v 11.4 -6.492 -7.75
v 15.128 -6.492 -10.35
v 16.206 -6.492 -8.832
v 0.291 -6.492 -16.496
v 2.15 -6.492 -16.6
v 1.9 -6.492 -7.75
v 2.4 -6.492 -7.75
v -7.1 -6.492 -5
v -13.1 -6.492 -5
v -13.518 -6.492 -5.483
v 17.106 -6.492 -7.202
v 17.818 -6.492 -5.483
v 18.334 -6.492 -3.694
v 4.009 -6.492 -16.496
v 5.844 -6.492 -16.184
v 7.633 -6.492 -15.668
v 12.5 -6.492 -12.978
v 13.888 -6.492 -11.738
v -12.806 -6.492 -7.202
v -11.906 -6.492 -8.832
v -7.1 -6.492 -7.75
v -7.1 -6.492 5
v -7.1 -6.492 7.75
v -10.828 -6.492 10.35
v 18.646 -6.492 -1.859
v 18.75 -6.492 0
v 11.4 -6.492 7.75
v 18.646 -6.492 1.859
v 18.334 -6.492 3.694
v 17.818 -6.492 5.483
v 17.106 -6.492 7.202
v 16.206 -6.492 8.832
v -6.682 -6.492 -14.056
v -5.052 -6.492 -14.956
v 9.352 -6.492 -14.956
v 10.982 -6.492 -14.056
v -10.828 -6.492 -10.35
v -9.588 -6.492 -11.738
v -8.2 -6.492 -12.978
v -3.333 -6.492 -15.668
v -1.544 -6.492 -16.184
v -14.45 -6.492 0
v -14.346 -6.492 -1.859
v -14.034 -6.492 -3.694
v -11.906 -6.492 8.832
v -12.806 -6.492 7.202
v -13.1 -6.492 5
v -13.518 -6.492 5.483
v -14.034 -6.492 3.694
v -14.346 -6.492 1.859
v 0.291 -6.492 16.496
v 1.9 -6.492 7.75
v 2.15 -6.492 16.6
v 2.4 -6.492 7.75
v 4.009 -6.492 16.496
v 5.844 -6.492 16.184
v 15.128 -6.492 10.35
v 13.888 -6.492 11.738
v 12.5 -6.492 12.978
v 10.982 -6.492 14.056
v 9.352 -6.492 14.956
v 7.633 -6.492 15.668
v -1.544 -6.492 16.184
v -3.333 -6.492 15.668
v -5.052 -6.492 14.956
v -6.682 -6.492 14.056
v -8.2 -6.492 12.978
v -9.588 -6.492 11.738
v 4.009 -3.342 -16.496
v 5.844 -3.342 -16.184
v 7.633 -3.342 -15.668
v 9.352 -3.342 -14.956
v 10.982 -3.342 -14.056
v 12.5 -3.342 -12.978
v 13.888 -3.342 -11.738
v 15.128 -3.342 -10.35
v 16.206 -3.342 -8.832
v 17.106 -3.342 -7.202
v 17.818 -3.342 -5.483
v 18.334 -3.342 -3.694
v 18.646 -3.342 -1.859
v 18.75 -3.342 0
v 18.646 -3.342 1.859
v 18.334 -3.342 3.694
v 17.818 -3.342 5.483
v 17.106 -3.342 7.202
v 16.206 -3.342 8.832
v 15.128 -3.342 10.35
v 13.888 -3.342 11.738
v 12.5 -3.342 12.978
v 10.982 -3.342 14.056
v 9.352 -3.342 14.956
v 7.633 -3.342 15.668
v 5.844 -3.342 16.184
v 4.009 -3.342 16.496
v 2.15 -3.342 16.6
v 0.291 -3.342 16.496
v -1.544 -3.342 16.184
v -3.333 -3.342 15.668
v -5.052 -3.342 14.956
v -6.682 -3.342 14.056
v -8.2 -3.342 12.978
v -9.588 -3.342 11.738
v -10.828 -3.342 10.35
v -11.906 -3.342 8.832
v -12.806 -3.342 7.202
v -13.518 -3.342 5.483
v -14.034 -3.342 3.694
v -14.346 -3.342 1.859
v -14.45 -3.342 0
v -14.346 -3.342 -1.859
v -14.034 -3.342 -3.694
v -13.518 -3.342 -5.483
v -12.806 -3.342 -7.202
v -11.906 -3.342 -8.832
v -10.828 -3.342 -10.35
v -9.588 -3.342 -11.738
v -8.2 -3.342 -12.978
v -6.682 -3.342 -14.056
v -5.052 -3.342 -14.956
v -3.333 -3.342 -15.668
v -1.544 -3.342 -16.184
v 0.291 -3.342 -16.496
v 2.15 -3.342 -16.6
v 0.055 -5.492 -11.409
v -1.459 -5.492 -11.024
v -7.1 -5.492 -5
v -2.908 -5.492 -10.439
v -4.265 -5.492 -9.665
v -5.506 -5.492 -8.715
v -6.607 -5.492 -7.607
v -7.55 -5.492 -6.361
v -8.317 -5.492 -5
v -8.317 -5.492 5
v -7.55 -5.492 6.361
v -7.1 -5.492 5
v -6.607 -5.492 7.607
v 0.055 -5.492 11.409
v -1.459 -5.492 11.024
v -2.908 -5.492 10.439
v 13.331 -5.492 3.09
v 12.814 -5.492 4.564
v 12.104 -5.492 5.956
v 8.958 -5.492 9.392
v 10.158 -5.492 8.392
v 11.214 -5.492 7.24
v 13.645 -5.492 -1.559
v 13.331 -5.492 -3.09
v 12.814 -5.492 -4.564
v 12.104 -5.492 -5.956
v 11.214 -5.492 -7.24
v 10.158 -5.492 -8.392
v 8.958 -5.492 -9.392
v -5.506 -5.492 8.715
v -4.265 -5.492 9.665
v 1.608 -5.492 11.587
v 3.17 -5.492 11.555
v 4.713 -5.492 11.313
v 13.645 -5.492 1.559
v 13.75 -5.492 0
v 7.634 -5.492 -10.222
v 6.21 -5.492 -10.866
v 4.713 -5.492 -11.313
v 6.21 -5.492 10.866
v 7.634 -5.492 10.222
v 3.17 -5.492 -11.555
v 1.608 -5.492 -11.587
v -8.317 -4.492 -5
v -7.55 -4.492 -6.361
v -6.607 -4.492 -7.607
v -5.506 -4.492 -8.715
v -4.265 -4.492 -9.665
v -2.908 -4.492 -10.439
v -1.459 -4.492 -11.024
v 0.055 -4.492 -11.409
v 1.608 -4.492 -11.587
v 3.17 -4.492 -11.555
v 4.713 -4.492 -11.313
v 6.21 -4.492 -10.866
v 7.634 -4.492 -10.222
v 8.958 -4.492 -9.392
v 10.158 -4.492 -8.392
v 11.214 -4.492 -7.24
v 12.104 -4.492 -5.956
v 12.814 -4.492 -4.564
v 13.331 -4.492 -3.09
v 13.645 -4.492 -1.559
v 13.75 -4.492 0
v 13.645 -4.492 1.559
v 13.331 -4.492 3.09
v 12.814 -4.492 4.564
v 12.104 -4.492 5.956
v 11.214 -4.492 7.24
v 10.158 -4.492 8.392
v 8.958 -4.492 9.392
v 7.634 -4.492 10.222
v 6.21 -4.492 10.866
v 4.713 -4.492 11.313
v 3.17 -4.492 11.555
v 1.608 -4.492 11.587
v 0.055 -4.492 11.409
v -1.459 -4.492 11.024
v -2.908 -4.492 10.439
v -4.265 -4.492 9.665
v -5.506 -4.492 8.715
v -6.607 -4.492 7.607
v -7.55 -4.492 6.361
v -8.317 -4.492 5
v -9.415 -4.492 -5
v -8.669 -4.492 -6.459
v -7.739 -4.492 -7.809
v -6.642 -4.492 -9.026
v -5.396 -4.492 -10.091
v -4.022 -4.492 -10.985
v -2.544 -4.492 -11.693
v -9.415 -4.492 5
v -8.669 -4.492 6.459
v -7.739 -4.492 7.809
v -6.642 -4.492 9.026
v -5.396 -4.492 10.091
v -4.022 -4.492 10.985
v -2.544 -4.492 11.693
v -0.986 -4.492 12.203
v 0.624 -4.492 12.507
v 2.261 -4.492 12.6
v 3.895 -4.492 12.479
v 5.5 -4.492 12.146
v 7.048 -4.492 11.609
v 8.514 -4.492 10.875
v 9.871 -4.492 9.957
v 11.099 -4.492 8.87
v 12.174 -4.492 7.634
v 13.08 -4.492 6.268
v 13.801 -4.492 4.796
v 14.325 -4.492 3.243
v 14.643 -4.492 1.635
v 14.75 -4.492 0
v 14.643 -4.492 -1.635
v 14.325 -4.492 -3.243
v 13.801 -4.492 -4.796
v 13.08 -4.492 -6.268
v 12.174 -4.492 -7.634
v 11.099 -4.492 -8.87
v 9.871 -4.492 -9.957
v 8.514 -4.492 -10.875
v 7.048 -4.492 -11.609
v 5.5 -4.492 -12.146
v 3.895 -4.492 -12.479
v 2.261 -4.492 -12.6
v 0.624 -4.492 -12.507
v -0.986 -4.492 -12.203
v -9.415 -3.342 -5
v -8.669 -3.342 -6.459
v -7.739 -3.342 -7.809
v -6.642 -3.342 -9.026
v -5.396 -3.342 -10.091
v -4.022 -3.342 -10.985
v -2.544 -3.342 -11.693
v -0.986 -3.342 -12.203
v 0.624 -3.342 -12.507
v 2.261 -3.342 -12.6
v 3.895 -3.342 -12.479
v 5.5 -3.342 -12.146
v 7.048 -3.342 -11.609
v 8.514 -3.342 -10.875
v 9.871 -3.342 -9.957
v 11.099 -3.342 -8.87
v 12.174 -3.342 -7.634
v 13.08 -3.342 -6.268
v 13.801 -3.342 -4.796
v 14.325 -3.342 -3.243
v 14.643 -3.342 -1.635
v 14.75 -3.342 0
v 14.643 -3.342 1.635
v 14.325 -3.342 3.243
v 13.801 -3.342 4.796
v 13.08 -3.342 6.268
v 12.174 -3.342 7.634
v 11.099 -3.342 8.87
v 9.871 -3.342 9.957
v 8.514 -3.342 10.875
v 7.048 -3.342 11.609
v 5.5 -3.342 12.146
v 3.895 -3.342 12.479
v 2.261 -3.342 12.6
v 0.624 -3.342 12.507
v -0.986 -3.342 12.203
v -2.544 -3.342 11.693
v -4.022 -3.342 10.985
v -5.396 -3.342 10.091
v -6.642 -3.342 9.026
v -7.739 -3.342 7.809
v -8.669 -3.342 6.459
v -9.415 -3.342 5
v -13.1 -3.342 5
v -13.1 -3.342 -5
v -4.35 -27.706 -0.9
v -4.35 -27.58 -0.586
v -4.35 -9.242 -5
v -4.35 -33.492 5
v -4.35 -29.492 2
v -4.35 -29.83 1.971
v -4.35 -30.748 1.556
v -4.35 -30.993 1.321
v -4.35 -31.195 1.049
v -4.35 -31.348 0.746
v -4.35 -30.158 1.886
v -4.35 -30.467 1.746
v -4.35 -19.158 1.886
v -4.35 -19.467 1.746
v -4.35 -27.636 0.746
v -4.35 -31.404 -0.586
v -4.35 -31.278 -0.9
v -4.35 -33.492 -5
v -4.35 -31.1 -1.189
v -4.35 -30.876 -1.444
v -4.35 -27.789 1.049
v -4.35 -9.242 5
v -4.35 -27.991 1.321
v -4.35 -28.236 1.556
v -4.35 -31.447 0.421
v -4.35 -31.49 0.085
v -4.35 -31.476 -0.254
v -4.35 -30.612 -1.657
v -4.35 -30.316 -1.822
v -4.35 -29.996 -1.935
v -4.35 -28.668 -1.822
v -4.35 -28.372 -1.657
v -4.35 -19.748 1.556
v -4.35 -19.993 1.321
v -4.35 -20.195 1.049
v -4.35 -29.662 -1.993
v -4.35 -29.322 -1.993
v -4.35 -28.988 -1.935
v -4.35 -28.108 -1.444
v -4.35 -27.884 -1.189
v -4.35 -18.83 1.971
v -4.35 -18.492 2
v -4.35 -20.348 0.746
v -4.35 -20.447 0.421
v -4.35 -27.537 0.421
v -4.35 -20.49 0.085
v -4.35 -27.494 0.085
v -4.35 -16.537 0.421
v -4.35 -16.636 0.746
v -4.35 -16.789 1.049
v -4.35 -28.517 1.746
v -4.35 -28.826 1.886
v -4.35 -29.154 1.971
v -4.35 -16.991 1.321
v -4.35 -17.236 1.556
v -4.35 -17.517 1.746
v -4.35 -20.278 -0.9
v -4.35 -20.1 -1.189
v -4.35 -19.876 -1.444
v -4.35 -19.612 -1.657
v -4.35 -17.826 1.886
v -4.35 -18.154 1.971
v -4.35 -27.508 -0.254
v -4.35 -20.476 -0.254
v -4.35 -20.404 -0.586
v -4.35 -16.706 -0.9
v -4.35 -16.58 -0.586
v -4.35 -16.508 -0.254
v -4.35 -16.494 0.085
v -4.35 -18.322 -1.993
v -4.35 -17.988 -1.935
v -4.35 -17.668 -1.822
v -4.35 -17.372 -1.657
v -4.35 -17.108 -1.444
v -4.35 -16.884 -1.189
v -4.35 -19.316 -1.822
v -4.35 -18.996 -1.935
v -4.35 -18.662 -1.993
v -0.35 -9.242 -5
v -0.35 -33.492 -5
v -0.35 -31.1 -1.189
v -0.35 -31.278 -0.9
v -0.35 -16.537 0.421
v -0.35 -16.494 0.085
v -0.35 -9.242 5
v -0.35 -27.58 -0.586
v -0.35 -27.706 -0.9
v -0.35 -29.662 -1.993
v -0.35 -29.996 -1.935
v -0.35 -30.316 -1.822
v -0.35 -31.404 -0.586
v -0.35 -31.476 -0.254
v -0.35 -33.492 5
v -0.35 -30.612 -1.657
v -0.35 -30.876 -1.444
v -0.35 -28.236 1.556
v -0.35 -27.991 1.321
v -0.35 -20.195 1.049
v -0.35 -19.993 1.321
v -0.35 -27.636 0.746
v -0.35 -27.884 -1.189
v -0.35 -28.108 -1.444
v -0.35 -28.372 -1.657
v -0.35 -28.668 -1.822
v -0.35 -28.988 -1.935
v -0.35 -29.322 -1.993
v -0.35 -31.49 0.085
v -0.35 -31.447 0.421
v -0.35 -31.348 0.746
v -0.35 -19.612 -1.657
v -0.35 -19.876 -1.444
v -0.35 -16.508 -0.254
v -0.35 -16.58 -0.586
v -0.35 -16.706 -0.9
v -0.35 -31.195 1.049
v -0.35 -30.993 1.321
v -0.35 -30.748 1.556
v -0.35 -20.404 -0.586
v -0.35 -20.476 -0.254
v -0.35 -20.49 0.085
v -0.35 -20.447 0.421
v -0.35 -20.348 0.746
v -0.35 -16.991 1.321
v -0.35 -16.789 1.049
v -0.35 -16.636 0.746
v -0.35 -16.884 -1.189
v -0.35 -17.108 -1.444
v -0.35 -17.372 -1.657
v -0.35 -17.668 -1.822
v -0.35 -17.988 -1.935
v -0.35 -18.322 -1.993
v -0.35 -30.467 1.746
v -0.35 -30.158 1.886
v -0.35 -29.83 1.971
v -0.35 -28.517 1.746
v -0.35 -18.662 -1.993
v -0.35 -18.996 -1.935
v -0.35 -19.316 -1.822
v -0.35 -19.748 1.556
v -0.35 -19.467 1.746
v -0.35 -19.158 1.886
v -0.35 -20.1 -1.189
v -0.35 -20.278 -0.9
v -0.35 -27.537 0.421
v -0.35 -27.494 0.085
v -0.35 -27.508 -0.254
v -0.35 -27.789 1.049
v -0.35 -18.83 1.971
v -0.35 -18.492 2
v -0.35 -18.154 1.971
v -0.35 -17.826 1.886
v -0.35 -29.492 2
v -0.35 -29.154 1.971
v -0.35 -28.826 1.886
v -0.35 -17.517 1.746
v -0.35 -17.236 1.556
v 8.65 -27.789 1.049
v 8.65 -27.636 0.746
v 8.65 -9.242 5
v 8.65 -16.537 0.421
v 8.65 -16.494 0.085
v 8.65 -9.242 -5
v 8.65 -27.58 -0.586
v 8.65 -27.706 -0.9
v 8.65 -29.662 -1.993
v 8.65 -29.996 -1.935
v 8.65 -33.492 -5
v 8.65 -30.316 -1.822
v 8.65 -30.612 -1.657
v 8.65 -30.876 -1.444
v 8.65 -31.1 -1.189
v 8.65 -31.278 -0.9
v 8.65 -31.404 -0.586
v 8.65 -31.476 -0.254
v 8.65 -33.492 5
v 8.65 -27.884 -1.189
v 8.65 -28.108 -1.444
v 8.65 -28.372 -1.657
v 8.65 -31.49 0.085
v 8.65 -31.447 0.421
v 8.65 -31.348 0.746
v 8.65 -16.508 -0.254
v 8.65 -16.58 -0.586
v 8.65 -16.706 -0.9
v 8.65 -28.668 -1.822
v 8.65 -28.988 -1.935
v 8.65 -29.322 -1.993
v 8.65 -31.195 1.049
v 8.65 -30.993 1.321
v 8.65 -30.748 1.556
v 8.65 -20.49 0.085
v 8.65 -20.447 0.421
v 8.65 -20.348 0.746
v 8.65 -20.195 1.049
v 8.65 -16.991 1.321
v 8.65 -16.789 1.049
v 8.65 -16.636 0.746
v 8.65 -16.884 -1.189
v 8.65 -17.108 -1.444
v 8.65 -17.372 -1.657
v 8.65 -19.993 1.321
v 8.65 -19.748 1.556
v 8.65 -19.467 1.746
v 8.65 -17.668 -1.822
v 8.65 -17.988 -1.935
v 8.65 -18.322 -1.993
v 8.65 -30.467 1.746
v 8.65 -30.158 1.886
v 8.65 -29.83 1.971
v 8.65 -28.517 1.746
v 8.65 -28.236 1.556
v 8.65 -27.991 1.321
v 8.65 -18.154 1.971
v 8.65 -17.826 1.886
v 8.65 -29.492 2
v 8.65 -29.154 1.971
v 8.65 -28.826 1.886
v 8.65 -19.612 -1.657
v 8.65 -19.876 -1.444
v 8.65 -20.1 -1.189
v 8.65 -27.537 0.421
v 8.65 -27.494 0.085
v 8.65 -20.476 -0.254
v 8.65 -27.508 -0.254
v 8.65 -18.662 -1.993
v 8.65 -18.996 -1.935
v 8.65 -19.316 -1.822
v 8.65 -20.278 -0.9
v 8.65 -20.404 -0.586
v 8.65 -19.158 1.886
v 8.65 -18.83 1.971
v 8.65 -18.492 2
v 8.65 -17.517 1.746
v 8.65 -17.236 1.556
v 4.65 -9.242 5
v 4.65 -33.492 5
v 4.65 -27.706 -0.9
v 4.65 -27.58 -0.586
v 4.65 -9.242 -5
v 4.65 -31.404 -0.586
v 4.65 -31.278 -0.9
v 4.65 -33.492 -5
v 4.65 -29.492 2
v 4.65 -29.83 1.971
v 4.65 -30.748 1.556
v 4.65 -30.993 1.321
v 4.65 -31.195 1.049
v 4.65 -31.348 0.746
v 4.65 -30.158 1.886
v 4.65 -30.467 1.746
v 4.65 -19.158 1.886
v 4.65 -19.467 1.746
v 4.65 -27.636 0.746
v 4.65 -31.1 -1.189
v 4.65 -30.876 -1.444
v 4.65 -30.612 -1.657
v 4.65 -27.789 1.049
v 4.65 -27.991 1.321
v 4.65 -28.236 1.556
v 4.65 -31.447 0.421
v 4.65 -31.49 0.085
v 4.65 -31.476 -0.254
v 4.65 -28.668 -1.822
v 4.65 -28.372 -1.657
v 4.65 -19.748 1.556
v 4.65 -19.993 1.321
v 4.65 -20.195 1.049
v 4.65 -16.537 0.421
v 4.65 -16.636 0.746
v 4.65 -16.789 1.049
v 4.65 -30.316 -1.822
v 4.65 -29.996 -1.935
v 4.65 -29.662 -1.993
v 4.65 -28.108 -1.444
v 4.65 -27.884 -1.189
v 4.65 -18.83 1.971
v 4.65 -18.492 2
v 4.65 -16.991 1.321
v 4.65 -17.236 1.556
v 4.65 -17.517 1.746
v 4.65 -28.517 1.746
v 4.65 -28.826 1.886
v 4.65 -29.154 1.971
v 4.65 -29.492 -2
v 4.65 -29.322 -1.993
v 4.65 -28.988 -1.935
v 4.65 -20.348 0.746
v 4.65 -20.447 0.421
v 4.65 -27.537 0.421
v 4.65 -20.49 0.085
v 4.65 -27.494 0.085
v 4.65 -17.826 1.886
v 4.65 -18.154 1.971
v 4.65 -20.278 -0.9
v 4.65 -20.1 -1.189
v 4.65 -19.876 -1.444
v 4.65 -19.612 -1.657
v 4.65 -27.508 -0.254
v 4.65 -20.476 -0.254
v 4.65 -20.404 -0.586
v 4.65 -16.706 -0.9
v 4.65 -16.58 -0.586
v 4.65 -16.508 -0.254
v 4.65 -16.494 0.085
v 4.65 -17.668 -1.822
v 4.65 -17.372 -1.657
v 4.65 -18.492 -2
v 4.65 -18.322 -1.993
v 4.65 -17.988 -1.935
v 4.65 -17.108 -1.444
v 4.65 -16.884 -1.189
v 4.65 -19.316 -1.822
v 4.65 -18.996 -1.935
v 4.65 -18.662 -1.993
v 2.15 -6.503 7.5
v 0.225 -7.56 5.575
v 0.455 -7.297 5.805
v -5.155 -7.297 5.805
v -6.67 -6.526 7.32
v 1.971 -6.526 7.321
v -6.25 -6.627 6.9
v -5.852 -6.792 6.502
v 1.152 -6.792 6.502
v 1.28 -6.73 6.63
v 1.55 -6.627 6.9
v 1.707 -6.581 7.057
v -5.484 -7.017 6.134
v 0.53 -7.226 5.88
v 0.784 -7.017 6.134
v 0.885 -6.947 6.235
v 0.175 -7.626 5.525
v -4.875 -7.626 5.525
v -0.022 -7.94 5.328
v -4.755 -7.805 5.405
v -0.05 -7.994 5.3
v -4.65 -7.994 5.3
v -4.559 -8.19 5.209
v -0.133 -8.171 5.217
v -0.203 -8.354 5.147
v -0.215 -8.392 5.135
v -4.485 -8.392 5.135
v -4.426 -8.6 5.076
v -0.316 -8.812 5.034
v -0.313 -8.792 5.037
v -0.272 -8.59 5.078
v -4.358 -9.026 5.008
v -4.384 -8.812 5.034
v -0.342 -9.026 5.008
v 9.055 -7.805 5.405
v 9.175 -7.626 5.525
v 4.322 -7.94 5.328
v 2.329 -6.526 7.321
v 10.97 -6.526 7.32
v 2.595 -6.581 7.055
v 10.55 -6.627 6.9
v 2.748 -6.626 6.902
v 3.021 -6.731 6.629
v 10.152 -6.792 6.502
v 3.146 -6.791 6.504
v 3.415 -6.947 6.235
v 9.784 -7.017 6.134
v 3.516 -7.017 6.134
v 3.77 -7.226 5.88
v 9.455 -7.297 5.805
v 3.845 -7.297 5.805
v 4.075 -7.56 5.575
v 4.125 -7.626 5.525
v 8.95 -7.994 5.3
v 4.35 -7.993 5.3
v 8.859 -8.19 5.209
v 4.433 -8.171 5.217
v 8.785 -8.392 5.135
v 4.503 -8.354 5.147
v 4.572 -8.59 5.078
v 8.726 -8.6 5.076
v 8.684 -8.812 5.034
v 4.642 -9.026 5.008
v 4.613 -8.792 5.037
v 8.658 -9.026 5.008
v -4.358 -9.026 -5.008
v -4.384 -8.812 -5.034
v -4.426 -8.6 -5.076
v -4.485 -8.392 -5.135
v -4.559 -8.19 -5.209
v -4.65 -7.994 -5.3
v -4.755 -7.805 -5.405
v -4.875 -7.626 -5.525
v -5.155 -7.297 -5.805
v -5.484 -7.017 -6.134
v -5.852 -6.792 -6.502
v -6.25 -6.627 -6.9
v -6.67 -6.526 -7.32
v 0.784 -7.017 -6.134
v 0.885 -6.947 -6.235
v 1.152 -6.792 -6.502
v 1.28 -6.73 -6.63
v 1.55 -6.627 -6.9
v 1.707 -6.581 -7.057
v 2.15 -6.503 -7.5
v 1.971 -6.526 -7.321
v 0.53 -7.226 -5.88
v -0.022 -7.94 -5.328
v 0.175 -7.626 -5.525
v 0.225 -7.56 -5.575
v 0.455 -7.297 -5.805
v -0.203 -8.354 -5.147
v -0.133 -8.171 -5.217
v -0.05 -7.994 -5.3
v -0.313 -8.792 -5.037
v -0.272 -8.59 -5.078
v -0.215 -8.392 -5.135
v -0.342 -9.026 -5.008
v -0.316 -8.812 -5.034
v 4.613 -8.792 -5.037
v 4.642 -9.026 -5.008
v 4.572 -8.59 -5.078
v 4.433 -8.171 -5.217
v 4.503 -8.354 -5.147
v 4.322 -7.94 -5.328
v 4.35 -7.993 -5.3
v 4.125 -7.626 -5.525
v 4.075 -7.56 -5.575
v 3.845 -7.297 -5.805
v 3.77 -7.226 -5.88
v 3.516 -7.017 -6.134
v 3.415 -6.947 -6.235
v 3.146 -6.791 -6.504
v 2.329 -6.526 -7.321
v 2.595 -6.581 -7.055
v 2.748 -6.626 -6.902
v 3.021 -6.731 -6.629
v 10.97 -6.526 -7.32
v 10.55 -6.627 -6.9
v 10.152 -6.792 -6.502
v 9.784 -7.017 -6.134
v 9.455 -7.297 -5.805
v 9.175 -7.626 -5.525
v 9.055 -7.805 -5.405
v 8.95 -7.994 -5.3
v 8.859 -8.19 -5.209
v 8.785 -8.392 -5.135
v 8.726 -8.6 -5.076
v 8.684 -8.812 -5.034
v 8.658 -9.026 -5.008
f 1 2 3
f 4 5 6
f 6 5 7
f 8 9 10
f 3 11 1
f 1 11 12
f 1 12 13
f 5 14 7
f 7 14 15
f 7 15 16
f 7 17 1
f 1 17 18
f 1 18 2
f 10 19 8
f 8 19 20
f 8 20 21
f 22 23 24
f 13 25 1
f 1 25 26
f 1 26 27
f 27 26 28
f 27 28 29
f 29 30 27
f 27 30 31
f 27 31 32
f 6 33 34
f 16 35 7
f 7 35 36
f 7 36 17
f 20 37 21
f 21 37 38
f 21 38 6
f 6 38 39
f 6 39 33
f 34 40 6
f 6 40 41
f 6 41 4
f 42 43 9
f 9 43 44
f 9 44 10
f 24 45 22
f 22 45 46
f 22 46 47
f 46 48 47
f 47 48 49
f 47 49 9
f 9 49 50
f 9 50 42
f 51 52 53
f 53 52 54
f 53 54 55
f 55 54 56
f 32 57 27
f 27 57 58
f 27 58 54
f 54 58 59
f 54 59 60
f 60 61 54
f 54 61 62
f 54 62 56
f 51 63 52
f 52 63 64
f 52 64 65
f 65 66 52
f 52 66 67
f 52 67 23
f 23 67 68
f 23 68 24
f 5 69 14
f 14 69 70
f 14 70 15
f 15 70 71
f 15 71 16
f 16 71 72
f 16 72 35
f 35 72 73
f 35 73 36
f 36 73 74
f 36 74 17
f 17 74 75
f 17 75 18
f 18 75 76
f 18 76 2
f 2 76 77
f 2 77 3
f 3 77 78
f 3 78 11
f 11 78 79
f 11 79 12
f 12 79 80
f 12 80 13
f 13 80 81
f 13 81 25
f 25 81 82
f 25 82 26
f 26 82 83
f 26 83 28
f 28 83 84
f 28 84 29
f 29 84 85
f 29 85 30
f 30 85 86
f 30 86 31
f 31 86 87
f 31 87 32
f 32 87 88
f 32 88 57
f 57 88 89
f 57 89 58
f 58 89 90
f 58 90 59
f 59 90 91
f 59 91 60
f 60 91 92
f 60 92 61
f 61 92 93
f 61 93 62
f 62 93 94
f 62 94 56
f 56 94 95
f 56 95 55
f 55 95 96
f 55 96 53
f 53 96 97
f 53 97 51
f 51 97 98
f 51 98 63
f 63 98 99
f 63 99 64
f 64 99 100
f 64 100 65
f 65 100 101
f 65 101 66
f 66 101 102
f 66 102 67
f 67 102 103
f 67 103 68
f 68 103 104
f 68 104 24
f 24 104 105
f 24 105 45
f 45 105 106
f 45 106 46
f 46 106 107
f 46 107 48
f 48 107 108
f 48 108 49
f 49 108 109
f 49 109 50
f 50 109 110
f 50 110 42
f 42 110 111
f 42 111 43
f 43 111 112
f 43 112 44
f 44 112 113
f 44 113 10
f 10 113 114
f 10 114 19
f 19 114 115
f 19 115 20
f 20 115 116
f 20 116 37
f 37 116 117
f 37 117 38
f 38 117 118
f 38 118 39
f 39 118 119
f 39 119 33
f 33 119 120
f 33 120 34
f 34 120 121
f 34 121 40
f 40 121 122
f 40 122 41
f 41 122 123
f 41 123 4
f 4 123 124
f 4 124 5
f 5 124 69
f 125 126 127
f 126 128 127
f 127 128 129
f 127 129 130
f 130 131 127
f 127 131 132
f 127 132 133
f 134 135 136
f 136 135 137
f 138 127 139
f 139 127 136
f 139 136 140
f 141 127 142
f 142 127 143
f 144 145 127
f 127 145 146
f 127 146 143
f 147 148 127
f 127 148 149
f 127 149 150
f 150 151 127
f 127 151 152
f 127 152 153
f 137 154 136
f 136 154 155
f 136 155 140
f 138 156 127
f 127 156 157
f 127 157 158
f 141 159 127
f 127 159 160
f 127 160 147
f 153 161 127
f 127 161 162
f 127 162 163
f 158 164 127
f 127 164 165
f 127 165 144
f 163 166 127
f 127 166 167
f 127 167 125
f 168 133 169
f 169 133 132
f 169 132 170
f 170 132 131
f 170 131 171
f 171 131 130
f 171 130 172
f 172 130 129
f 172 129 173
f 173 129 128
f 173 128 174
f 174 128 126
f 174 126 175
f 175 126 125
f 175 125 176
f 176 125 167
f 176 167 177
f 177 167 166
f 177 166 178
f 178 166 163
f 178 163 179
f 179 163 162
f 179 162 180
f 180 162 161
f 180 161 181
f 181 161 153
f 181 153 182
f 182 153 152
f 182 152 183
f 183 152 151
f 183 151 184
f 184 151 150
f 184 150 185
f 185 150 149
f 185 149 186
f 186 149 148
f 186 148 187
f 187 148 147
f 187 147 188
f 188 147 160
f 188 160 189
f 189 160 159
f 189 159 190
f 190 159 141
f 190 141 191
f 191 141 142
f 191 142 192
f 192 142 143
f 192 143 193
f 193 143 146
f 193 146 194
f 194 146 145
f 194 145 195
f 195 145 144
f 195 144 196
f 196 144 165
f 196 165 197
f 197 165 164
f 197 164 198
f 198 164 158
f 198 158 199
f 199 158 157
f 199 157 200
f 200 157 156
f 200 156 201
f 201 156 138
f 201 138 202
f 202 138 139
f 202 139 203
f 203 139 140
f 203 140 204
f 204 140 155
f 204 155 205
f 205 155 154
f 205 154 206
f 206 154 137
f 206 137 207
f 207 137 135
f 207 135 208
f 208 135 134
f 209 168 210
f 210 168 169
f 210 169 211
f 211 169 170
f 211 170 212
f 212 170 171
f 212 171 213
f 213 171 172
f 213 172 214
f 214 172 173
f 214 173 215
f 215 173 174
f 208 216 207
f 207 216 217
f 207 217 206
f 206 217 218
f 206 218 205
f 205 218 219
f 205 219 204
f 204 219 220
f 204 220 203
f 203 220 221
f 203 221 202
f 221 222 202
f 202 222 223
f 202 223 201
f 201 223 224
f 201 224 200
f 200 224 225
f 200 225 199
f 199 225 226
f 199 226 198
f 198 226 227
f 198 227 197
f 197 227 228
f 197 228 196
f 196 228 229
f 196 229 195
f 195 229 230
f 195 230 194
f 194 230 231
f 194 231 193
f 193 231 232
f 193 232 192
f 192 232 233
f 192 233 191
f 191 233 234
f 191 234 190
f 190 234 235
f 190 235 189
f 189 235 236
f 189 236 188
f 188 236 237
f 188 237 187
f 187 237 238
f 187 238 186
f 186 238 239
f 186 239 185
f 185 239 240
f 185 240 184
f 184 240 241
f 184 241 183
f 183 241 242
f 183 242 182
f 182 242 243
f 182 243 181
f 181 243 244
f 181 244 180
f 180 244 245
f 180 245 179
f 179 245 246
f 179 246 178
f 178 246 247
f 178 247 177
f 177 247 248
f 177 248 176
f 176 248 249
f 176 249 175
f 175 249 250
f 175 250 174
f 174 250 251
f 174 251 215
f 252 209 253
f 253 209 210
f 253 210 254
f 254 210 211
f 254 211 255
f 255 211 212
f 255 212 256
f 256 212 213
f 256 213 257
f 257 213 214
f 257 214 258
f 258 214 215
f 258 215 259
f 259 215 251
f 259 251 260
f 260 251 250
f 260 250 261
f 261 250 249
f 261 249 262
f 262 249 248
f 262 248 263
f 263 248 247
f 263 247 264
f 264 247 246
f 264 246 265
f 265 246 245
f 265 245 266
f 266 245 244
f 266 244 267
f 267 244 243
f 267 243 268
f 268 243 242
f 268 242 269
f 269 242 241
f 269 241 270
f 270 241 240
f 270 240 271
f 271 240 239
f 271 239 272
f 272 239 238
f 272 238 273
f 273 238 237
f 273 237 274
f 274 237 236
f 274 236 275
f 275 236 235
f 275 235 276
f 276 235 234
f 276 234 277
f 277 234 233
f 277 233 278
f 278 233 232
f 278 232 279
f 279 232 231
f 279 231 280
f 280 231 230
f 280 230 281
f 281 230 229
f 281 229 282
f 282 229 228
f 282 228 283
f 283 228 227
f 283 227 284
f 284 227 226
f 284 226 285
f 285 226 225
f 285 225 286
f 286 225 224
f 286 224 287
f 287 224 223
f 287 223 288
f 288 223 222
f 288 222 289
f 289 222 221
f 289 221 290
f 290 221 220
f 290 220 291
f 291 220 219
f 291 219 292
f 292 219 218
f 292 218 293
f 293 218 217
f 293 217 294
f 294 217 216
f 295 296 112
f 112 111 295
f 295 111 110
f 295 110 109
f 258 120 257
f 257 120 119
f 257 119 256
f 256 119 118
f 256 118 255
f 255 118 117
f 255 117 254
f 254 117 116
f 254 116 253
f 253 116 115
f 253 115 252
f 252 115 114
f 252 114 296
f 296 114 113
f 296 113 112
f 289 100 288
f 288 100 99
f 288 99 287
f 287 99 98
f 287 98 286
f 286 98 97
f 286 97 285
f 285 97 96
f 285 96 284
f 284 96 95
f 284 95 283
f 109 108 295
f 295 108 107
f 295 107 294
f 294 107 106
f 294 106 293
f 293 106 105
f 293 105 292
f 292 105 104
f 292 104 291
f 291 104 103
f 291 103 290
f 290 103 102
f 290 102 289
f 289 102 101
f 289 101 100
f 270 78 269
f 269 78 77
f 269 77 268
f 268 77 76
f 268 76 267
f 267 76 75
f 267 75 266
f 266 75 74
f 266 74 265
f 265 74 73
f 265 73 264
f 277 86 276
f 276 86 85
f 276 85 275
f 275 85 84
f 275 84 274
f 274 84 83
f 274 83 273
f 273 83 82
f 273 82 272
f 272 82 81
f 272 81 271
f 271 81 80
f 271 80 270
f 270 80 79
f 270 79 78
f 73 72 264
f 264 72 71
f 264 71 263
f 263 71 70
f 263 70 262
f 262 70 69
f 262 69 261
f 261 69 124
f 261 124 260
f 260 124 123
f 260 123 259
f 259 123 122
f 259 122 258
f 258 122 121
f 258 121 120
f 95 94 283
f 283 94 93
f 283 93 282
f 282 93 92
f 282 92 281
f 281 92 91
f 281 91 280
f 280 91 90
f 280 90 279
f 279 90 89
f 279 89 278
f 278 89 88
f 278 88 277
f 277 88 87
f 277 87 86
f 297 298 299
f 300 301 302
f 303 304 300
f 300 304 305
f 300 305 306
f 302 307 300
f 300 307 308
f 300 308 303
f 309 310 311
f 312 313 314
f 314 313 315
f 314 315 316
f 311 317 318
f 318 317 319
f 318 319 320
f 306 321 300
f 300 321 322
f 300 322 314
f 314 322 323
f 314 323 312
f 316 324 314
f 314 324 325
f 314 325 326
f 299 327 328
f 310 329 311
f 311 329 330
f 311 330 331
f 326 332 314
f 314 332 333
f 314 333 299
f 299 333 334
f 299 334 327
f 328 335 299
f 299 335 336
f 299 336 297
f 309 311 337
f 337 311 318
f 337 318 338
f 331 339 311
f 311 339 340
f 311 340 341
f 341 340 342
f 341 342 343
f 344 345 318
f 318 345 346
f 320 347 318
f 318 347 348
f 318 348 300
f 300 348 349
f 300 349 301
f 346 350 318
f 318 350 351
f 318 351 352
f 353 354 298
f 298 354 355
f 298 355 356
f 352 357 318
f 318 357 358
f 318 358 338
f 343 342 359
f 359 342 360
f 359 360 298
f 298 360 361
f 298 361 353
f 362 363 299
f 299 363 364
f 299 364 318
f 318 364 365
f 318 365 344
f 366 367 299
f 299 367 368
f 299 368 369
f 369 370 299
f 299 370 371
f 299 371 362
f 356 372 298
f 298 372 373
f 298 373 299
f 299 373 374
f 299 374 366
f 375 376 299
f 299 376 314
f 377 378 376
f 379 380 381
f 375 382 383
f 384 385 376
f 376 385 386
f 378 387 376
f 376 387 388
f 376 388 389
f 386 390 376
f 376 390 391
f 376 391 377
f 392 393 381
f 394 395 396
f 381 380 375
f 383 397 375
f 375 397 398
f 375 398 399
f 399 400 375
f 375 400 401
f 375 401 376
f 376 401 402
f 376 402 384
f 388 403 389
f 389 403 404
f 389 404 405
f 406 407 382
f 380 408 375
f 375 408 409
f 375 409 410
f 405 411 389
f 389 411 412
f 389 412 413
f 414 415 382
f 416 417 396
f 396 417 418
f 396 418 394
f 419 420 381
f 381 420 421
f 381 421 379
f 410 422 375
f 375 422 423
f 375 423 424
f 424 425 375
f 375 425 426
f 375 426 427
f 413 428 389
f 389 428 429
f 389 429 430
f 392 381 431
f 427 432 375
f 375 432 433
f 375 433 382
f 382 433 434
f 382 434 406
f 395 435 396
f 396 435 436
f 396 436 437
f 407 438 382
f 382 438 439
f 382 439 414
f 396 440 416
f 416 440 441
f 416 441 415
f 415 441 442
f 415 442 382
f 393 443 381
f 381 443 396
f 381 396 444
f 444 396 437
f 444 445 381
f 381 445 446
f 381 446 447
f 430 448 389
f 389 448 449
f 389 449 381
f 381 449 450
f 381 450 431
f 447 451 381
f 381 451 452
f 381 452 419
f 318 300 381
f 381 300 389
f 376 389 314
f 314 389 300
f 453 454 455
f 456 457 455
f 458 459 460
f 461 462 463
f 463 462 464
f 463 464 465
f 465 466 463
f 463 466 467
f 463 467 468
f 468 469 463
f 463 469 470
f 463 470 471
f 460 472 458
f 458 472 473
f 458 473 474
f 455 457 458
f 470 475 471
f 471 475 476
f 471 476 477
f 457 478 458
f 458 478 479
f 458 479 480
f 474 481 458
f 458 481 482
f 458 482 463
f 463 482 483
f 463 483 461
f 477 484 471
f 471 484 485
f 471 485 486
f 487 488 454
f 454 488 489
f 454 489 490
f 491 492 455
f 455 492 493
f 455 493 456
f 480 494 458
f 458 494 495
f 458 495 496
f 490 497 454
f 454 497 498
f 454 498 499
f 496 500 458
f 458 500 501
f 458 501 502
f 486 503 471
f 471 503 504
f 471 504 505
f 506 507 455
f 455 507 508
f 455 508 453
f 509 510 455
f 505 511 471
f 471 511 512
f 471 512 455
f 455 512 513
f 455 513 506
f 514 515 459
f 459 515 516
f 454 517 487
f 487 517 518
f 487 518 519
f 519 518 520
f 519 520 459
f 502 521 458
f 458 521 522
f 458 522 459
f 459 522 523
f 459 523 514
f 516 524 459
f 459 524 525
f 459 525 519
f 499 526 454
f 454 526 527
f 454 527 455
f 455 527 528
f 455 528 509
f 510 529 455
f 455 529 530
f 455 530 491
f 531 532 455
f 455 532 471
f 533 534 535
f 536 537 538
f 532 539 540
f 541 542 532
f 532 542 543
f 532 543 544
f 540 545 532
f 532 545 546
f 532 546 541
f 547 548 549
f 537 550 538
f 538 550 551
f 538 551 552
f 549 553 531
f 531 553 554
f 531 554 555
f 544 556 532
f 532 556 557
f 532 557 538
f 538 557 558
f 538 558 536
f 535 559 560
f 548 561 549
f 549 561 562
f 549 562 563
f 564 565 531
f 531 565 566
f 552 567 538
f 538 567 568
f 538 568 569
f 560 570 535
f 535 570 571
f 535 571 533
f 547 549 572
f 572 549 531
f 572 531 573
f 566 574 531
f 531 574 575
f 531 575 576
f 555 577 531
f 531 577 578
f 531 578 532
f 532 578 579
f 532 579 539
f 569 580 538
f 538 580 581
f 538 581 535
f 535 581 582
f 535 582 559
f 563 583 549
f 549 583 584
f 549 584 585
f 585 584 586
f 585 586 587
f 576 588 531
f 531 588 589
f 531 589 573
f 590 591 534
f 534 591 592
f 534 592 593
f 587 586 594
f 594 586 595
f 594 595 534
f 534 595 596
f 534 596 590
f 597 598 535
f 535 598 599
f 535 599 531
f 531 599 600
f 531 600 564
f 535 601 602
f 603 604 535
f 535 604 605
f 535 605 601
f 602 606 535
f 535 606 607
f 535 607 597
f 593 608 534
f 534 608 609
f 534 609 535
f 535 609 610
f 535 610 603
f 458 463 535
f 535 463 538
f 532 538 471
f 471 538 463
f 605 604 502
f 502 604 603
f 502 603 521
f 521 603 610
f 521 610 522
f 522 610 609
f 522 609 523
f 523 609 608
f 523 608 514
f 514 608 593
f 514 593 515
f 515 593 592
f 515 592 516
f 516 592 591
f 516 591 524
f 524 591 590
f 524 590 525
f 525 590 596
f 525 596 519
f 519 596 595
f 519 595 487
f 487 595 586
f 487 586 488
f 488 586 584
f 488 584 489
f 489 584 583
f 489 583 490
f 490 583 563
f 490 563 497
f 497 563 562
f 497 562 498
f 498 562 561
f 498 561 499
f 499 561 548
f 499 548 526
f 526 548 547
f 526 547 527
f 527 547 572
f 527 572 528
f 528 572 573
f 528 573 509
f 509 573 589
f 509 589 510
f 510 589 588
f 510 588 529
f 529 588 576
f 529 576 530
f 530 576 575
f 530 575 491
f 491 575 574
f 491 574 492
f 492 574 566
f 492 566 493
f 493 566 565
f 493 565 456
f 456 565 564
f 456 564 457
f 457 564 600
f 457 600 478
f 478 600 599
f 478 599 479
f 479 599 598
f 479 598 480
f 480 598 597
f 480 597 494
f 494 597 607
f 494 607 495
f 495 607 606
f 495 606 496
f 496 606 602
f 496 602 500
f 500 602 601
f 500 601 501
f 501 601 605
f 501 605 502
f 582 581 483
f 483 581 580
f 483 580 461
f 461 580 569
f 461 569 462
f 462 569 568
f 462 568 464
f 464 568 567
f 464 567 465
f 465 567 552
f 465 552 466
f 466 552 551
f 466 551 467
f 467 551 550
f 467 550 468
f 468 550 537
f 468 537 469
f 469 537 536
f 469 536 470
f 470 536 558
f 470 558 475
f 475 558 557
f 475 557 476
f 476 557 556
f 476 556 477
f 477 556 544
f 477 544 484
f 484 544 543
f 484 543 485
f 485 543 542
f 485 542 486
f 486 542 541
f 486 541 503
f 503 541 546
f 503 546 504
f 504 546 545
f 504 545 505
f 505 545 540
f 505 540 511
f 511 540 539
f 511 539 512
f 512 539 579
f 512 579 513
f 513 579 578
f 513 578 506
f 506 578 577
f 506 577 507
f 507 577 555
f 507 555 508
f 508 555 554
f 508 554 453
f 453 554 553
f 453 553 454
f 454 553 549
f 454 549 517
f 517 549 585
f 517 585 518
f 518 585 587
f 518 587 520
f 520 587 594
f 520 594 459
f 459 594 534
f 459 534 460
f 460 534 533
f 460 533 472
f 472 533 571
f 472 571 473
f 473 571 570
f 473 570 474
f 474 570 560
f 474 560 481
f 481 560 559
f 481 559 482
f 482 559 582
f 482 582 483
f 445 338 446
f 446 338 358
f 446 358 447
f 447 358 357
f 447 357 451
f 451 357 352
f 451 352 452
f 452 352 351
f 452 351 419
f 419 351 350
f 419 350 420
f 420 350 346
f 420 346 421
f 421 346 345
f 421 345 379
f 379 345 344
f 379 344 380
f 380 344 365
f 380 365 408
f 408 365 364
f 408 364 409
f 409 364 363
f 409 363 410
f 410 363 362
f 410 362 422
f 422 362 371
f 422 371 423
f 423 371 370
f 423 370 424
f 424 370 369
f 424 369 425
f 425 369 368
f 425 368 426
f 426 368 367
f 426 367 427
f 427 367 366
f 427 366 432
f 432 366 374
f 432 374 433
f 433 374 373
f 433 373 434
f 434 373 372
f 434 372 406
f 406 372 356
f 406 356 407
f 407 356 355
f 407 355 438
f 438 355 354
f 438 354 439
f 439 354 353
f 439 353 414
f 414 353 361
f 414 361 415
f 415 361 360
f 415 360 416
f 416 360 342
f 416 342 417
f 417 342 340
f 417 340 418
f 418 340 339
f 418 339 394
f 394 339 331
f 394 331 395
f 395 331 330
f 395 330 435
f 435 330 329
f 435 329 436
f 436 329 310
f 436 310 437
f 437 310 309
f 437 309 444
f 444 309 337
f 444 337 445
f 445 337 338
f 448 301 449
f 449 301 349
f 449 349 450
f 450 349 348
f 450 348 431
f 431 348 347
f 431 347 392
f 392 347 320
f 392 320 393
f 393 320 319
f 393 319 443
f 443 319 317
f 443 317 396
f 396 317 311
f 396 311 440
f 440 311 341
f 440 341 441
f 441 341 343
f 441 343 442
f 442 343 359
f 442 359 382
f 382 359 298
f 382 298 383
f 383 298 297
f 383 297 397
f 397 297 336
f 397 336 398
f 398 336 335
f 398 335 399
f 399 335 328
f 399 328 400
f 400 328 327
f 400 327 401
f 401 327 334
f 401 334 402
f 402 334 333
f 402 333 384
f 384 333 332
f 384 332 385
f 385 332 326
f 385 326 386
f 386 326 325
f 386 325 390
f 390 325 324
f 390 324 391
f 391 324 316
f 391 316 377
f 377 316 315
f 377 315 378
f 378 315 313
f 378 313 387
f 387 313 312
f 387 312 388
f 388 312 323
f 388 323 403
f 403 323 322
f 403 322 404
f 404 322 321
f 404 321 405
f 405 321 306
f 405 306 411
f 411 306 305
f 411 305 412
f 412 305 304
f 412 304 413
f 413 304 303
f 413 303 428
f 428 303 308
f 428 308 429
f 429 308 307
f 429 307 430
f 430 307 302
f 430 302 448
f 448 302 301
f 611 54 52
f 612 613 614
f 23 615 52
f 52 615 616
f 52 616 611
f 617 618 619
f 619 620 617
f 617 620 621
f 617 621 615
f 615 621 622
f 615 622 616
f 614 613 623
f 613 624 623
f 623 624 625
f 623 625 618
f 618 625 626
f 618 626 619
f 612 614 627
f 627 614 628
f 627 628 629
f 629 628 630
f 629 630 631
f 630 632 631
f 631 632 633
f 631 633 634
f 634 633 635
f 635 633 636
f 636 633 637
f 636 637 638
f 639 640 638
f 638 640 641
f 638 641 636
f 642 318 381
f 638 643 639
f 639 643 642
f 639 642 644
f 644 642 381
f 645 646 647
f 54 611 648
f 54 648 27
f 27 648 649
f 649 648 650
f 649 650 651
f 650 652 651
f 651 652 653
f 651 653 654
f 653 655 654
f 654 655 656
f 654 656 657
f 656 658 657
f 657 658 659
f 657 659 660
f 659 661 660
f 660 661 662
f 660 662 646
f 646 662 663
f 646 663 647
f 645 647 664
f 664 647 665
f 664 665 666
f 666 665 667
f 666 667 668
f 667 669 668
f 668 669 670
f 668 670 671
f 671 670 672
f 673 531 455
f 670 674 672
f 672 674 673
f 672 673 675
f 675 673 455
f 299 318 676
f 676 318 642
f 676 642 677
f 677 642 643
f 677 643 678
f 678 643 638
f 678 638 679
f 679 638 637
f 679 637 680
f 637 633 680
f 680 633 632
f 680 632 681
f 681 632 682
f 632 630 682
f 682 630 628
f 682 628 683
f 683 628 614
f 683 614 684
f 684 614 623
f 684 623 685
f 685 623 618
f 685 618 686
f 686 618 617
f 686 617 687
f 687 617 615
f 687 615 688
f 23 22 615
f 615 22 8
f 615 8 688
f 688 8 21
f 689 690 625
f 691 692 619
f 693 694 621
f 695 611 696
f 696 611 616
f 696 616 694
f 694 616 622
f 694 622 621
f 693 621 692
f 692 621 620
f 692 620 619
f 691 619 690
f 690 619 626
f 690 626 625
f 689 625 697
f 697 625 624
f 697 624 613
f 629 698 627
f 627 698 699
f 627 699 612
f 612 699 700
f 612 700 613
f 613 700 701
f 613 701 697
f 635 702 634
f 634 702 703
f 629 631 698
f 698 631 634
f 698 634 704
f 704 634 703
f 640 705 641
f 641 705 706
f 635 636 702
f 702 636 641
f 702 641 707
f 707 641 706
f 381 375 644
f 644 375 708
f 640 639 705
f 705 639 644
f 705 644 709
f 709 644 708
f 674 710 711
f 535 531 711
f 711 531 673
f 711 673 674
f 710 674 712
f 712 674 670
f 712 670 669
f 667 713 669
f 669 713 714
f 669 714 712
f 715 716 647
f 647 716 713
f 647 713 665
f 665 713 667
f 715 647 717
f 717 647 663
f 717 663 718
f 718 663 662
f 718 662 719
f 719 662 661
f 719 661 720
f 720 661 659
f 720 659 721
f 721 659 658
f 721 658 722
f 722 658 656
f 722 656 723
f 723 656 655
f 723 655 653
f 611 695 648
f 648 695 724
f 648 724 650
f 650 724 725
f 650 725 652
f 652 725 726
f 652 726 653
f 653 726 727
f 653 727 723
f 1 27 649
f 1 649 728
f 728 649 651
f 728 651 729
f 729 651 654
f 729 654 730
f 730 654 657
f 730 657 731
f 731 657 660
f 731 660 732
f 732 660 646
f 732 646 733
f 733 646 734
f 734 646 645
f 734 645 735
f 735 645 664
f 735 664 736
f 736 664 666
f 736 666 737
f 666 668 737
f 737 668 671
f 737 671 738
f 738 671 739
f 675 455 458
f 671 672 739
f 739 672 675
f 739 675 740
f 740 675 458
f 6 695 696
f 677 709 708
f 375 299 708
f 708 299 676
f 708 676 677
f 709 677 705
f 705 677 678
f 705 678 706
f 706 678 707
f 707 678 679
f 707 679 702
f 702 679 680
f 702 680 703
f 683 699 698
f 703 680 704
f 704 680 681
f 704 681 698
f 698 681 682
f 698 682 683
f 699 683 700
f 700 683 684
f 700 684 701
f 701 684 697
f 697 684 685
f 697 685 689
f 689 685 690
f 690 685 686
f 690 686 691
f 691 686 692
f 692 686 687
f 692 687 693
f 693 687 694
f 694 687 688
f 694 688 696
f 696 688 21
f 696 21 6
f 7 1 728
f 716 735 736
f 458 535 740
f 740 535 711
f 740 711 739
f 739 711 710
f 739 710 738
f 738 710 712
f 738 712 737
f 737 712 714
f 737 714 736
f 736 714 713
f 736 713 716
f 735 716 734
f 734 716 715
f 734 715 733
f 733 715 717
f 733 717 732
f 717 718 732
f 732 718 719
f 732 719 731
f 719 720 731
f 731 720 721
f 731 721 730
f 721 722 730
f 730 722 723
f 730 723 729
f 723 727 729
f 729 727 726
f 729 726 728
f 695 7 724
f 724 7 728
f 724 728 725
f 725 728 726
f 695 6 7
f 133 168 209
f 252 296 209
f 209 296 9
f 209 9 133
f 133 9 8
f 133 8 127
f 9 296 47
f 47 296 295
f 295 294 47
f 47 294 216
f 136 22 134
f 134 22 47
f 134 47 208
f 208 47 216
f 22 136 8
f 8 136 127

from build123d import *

# Parameters (mm, degrees)
SKETCH2_W           = 4
SKETCH2_H           = 10
BOSS_EXTRUDE1_DEPTH = 27
SKETCH3_R           = 2
CUT_EXTRUDE1_DEPTH  = 22.3
FILLET1_R           = 2.75
SKETCH6_W           = 6
SKETCH6_H           = 10
CUT_EXTRUDE4_DEPTH  = 10


with BuildPart() as part:
    # Sketch1 → Revolve1 (revolve)
    with BuildSketch(Plane.XY, mode=Mode.PRIVATE) as revolve1_sk:
        Polygon((-14.45, -3.342), (-10.45, -3.342), (-10.45, -4.492), (-9.45, -4.492), (-9.45, -5.492), (2.15, -5.492), (2.15, -6.492), (-14.45, -6.492), align=None)
    revolve(revolve1_sk.sketch.rotate(Axis((2.15, -6.492, 0), (0, 1, 0)), 270), axis=Axis((2.15, -6.492, 0), (0, 1, 0)))

    # Sketch2 → Boss-Extrude1 (add)
    with BuildSketch(Plane.XZ.offset(6.492)):
        with Locations((6.65, 0)):
            Rectangle(SKETCH2_W, SKETCH2_H)
        with Locations((-2.35, 0)):
            Rectangle(SKETCH2_W, SKETCH2_H)
    extrude(amount=BOSS_EXTRUDE1_DEPTH)

    # Sketch3 → Cut-Extrude1 (cut)
    with BuildSketch(Plane.ZY.offset(4.35)):
        with Locations((0, -29.492)):
            Circle(SKETCH3_R)
        with Locations((0, -18.492)):
            Circle(SKETCH3_R)
    extrude(amount=-CUT_EXTRUDE1_DEPTH, mode=Mode.SUBTRACT)

    # Fillet1
    # the kernel refuses this fillet: 2.75 mm, written as the material it adds along each edge
    with BuildSketch(Plane(origin=(-4.35, -6.492, -5), x_dir=(-1, 0, 0), z_dir=(0, 0, 1)), Plane(origin=(-0.35, -6.492, 5), x_dir=(1, 0, 0), z_dir=(0, 0, -1)), Plane(origin=(8.65, -6.492, 5), x_dir=(1, 0, 0), z_dir=(0, 0, -1)), Plane(origin=(4.65, -6.492, -5), x_dir=(-1, 0, 0), z_dir=(0, 0, 1))) as fillet1_piece_1:
        with BuildLine():
            CenterArc((FILLET1_R, FILLET1_R), FILLET1_R, 180, 90)
            Line((0, FILLET1_R), (0, 0))
            Line((0, 0), (FILLET1_R, 0))
        make_face()
    extrude(amount=10)
    with BuildSketch(Plane(origin=(6.525, -6.492, -5), x_dir=(0, 0, -1), z_dir=(-1, 0, 0))) as fillet1_piece_2_section:
        with BuildLine():
            CenterArc((FILLET1_R, FILLET1_R), FILLET1_R, 180, 90)
            Line((0, FILLET1_R), (0, 0))
            Line((0, 0), (FILLET1_R, 0))
        make_face()
    fillet1_piece_2 = extrude(amount=10.875, mode=Mode.PRIVATE)
    fillet1_piece_2 = split(fillet1_piece_2, bisect_by=Plane(origin=(4.65, -7.114586564, -5.622586564), z_dir=(1, 0, 0)), keep=Keep.TOP, mode=Mode.PRIVATE)
    add(fillet1_piece_2)
    with BuildSketch(Plane(origin=(-0.35, -6.492, -5), x_dir=(0, 0, -1), z_dir=(-1, 0, 0)), Plane(origin=(-4.35, -6.492, 5), x_dir=(0, 0, 1), z_dir=(1, 0, 0)), Plane(origin=(4.65, -6.492, 5), x_dir=(0, 0, 1), z_dir=(1, 0, 0)), Plane(origin=(8.65, -6.492, -5), x_dir=(0, 0, -1), z_dir=(-1, 0, 0))) as fillet1_piece_3:
        with BuildLine():
            CenterArc((FILLET1_R, FILLET1_R), FILLET1_R, 180, 90)
            Line((0, FILLET1_R), (0, 0))
            Line((0, 0), (FILLET1_R, 0))
        make_face()
    extrude(amount=4)
    with BuildSketch(Plane(origin=(-4.35, -6.492, 5), x_dir=(0, 0, 1), z_dir=(1, 0, 0))) as fillet1_piece_4_section:
        with BuildLine():
            CenterArc((FILLET1_R, FILLET1_R), FILLET1_R, 180, 90)
            Line((0, FILLET1_R), (0, 0))
            Line((0, 0), (FILLET1_R, 0))
        make_face()
    fillet1_piece_4 = extrude(amount=10.875, mode=Mode.PRIVATE)
    fillet1_piece_4 = split(fillet1_piece_4, bisect_by=Plane(origin=(4.65, -7.114586564, 5.622586564), z_dir=(1, 0, 0)), keep=Keep.TOP, mode=Mode.PRIVATE)
    add(fillet1_piece_4)
    with BuildSketch(Plane(origin=(-2.225, -6.492, 5), x_dir=(0, 0, 1), z_dir=(1, 0, 0))) as fillet1_piece_5_section:
        with BuildLine():
            CenterArc((FILLET1_R, FILLET1_R), FILLET1_R, 180, 90)
            Line((0, FILLET1_R), (0, 0))
            Line((0, 0), (FILLET1_R, 0))
        make_face()
    fillet1_piece_5 = extrude(amount=10.875, mode=Mode.PRIVATE)
    fillet1_piece_5 = split(fillet1_piece_5, bisect_by=Plane(origin=(-0.35, -7.114586564, 5.622586564), z_dir=(-1, 0, 0)), keep=Keep.TOP, mode=Mode.PRIVATE)
    add(fillet1_piece_5)
    with BuildSketch(Plane(origin=(8.65, -6.492, -5), x_dir=(0, 0, -1), z_dir=(-1, 0, 0))) as fillet1_piece_6_section:
        with BuildLine():
            CenterArc((FILLET1_R, FILLET1_R), FILLET1_R, 180, 90)
            Line((0, FILLET1_R), (0, 0))
            Line((0, 0), (FILLET1_R, 0))
        make_face()
    fillet1_piece_6 = extrude(amount=10.875, mode=Mode.PRIVATE)
    fillet1_piece_6 = split(fillet1_piece_6, bisect_by=Plane(origin=(-0.35, -7.114586564, -5.622586564), z_dir=(-1, 0, 0)), keep=Keep.TOP, mode=Mode.PRIVATE)
    add(fillet1_piece_6)
    with BuildSketch(Plane(origin=(-4.35, -6.492, -11.875), x_dir=(-1, 0, 0), z_dir=(0, 0, 1))) as fillet1_piece_7a_section:
        with BuildLine():
            CenterArc((FILLET1_R, FILLET1_R), FILLET1_R, 180, 90)
            Line((0, FILLET1_R), (0, 0))
            Line((0, 0), (FILLET1_R, 0))
        make_face()
    fillet1_piece_7a = extrude(amount=16.875, mode=Mode.PRIVATE)
    fillet1_piece_7a = split(fillet1_piece_7a, bisect_by=Plane(origin=(-4.972586564, -7.114586564, -5), z_dir=(0, 0, -1)), keep=Keep.TOP, mode=Mode.PRIVATE)
    with BuildSketch(Plane(origin=(-0.35, -6.492, -5), x_dir=(0, 0, -1), z_dir=(-1, 0, 0))) as fillet1_piece_7b_section:
        with BuildLine():
            CenterArc((FILLET1_R, FILLET1_R), FILLET1_R, 180, 90)
            Line((0, FILLET1_R), (0, 0))
            Line((0, 0), (FILLET1_R, 0))
        make_face()
    fillet1_piece_7b = extrude(amount=10.875, mode=Mode.PRIVATE)
    fillet1_piece_7b = split(fillet1_piece_7b, bisect_by=Plane(origin=(-4.35, -7.114586564, -5.622586564), z_dir=(-1, 0, 0)), keep=Keep.TOP, mode=Mode.PRIVATE)
    fillet1_piece_7 = fillet1_piece_7a & fillet1_piece_7b
    add(fillet1_piece_7)
    with BuildSketch(Plane(origin=(-4.35, -6.492, -5), x_dir=(-1, 0, 0), z_dir=(0, 0, 1))) as fillet1_piece_8a_section:
        with BuildLine():
            CenterArc((FILLET1_R, FILLET1_R), FILLET1_R, 180, 90)
            Line((0, FILLET1_R), (0, 0))
            Line((0, 0), (FILLET1_R, 0))
        make_face()
    fillet1_piece_8a = extrude(amount=16.875, mode=Mode.PRIVATE)
    fillet1_piece_8a = split(fillet1_piece_8a, bisect_by=Plane(origin=(-4.972586564, -7.114586564, 5), z_dir=(0, 0, 1)), keep=Keep.TOP, mode=Mode.PRIVATE)
    with BuildSketch(Plane(origin=(-11.225, -6.492, 5), x_dir=(0, 0, 1), z_dir=(1, 0, 0))) as fillet1_piece_8b_section:
        with BuildLine():
            CenterArc((FILLET1_R, FILLET1_R), FILLET1_R, 180, 90)
            Line((0, FILLET1_R), (0, 0))
            Line((0, 0), (FILLET1_R, 0))
        make_face()
    fillet1_piece_8b = extrude(amount=10.875, mode=Mode.PRIVATE)
    fillet1_piece_8b = split(fillet1_piece_8b, bisect_by=Plane(origin=(-4.35, -7.114586564, 5.622586564), z_dir=(-1, 0, 0)), keep=Keep.TOP, mode=Mode.PRIVATE)
    fillet1_piece_8 = fillet1_piece_8a & fillet1_piece_8b
    add(fillet1_piece_8)
    with BuildSketch(Plane(origin=(6.525, -6.492, -5), x_dir=(0, 0, -1), z_dir=(-1, 0, 0))) as fillet1_piece_9a_section:
        with BuildLine():
            CenterArc((FILLET1_R, FILLET1_R), FILLET1_R, 180, 90)
            Line((0, FILLET1_R), (0, 0))
            Line((0, 0), (FILLET1_R, 0))
        make_face()
    fillet1_piece_9a = extrude(amount=10.875, mode=Mode.PRIVATE)
    fillet1_piece_9a = split(fillet1_piece_9a, bisect_by=Plane(origin=(4.65, -7.114586564, -5.622586564), z_dir=(-1, 0, 0)), keep=Keep.TOP, mode=Mode.PRIVATE)
    fillet1_piece_9a = split(fillet1_piece_9a, bisect_by=Plane(origin=(-0.35, -7.114586564, -5.622586564), z_dir=(1, 0, 0)), keep=Keep.TOP, mode=Mode.PRIVATE)
    with BuildSketch(Plane(origin=(-0.35, -6.492, 5), x_dir=(1, 0, 0), z_dir=(0, 0, -1))) as fillet1_piece_9b_section:
        with BuildLine():
            CenterArc((FILLET1_R, FILLET1_R), FILLET1_R, 180, 90)
            Line((0, FILLET1_R), (0, 0))
            Line((0, 0), (FILLET1_R, 0))
        make_face()
    fillet1_piece_9b = extrude(amount=16.875, mode=Mode.PRIVATE)
    fillet1_piece_9b = split(fillet1_piece_9b, bisect_by=Plane(origin=(0.272586564, -7.114586564, -5), z_dir=(0, 0, -1)), keep=Keep.TOP, mode=Mode.PRIVATE)
    fillet1_piece_9 = fillet1_piece_9a & fillet1_piece_9b
    add(fillet1_piece_9)
    with BuildSketch(Plane(origin=(-0.35, -6.492, 11.875), x_dir=(1, 0, 0), z_dir=(0, 0, -1))) as fillet1_piece_10a_section:
        with BuildLine():
            CenterArc((FILLET1_R, FILLET1_R), FILLET1_R, 180, 90)
            Line((0, FILLET1_R), (0, 0))
            Line((0, 0), (FILLET1_R, 0))
        make_face()
    fillet1_piece_10a = extrude(amount=16.875, mode=Mode.PRIVATE)
    fillet1_piece_10a = split(fillet1_piece_10a, bisect_by=Plane(origin=(0.272586564, -7.114586564, 5), z_dir=(0, 0, 1)), keep=Keep.TOP, mode=Mode.PRIVATE)
    with BuildSketch(Plane(origin=(-4.35, -6.492, 5), x_dir=(0, 0, 1), z_dir=(1, 0, 0))) as fillet1_piece_10b_section:
        with BuildLine():
            CenterArc((FILLET1_R, FILLET1_R), FILLET1_R, 180, 90)
            Line((0, FILLET1_R), (0, 0))
            Line((0, 0), (FILLET1_R, 0))
        make_face()
    fillet1_piece_10b = extrude(amount=10.875, mode=Mode.PRIVATE)
    fillet1_piece_10b = split(fillet1_piece_10b, bisect_by=Plane(origin=(4.65, -7.114586564, 5.622586564), z_dir=(-1, 0, 0)), keep=Keep.TOP, mode=Mode.PRIVATE)
    fillet1_piece_10b = split(fillet1_piece_10b, bisect_by=Plane(origin=(-0.35, -7.114586564, 5.622586564), z_dir=(1, 0, 0)), keep=Keep.TOP, mode=Mode.PRIVATE)
    fillet1_piece_10 = fillet1_piece_10a & fillet1_piece_10b
    add(fillet1_piece_10)
    with BuildSketch(Plane(origin=(8.65, -6.492, 11.875), x_dir=(1, 0, 0), z_dir=(0, 0, -1))) as fillet1_piece_11a_section:
        with BuildLine():
            CenterArc((FILLET1_R, FILLET1_R), FILLET1_R, 180, 90)
            Line((0, FILLET1_R), (0, 0))
            Line((0, 0), (FILLET1_R, 0))
        make_face()
    fillet1_piece_11a = extrude(amount=16.875, mode=Mode.PRIVATE)
    fillet1_piece_11a = split(fillet1_piece_11a, bisect_by=Plane(origin=(9.272586564, -7.114586564, 5), z_dir=(0, 0, 1)), keep=Keep.TOP, mode=Mode.PRIVATE)
    with BuildSketch(Plane(origin=(4.65, -6.492, 5), x_dir=(0, 0, 1), z_dir=(1, 0, 0))) as fillet1_piece_11b_section:
        with BuildLine():
            CenterArc((FILLET1_R, FILLET1_R), FILLET1_R, 180, 90)
            Line((0, FILLET1_R), (0, 0))
            Line((0, 0), (FILLET1_R, 0))
        make_face()
    fillet1_piece_11b = extrude(amount=10.875, mode=Mode.PRIVATE)
    fillet1_piece_11b = split(fillet1_piece_11b, bisect_by=Plane(origin=(8.65, -7.114586564, 5.622586564), z_dir=(1, 0, 0)), keep=Keep.TOP, mode=Mode.PRIVATE)
    fillet1_piece_11 = fillet1_piece_11a & fillet1_piece_11b
    add(fillet1_piece_11)
    with BuildSketch(Plane(origin=(8.65, -6.492, 5), x_dir=(1, 0, 0), z_dir=(0, 0, -1))) as fillet1_piece_12a_section:
        with BuildLine():
            CenterArc((FILLET1_R, FILLET1_R), FILLET1_R, 180, 90)
            Line((0, FILLET1_R), (0, 0))
            Line((0, 0), (FILLET1_R, 0))
        make_face()
    fillet1_piece_12a = extrude(amount=16.875, mode=Mode.PRIVATE)
    fillet1_piece_12a = split(fillet1_piece_12a, bisect_by=Plane(origin=(9.272586564, -7.114586564, -5), z_dir=(0, 0, -1)), keep=Keep.TOP, mode=Mode.PRIVATE)
    with BuildSketch(Plane(origin=(15.525, -6.492, -5), x_dir=(0, 0, -1), z_dir=(-1, 0, 0))) as fillet1_piece_12b_section:
        with BuildLine():
            CenterArc((FILLET1_R, FILLET1_R), FILLET1_R, 180, 90)
            Line((0, FILLET1_R), (0, 0))
            Line((0, 0), (FILLET1_R, 0))
        make_face()
    fillet1_piece_12b = extrude(amount=10.875, mode=Mode.PRIVATE)
    fillet1_piece_12b = split(fillet1_piece_12b, bisect_by=Plane(origin=(8.65, -7.114586564, -5.622586564), z_dir=(1, 0, 0)), keep=Keep.TOP, mode=Mode.PRIVATE)
    fillet1_piece_12 = fillet1_piece_12a & fillet1_piece_12b
    add(fillet1_piece_12)
    with BuildSketch(Plane(origin=(-2.225, -6.492, 5), x_dir=(0, 0, 1), z_dir=(1, 0, 0))) as fillet1_piece_13a_section:
        with BuildLine():
            CenterArc((FILLET1_R, FILLET1_R), FILLET1_R, 180, 90)
            Line((0, FILLET1_R), (0, 0))
            Line((0, 0), (FILLET1_R, 0))
        make_face()
    fillet1_piece_13a = extrude(amount=10.875, mode=Mode.PRIVATE)
    fillet1_piece_13a = split(fillet1_piece_13a, bisect_by=Plane(origin=(4.65, -7.114586564, 5.622586564), z_dir=(-1, 0, 0)), keep=Keep.TOP, mode=Mode.PRIVATE)
    fillet1_piece_13a = split(fillet1_piece_13a, bisect_by=Plane(origin=(-0.35, -7.114586564, 5.622586564), z_dir=(1, 0, 0)), keep=Keep.TOP, mode=Mode.PRIVATE)
    with BuildSketch(Plane(origin=(4.65, -6.492, -5), x_dir=(-1, 0, 0), z_dir=(0, 0, 1))) as fillet1_piece_13b_section:
        with BuildLine():
            CenterArc((FILLET1_R, FILLET1_R), FILLET1_R, 180, 90)
            Line((0, FILLET1_R), (0, 0))
            Line((0, 0), (FILLET1_R, 0))
        make_face()
    fillet1_piece_13b = extrude(amount=16.875, mode=Mode.PRIVATE)
    fillet1_piece_13b = split(fillet1_piece_13b, bisect_by=Plane(origin=(4.027413436, -7.114586564, 5), z_dir=(0, 0, 1)), keep=Keep.TOP, mode=Mode.PRIVATE)
    fillet1_piece_13 = fillet1_piece_13a & fillet1_piece_13b
    add(fillet1_piece_13)
    with BuildSketch(Plane(origin=(4.65, -6.492, -11.875), x_dir=(-1, 0, 0), z_dir=(0, 0, 1))) as fillet1_piece_14a_section:
        with BuildLine():
            CenterArc((FILLET1_R, FILLET1_R), FILLET1_R, 180, 90)
            Line((0, FILLET1_R), (0, 0))
            Line((0, 0), (FILLET1_R, 0))
        make_face()
    fillet1_piece_14a = extrude(amount=16.875, mode=Mode.PRIVATE)
    fillet1_piece_14a = split(fillet1_piece_14a, bisect_by=Plane(origin=(4.027413436, -7.114586564, -5), z_dir=(0, 0, -1)), keep=Keep.TOP, mode=Mode.PRIVATE)
    with BuildSketch(Plane(origin=(8.65, -6.492, -5), x_dir=(0, 0, -1), z_dir=(-1, 0, 0))) as fillet1_piece_14b_section:
        with BuildLine():
            CenterArc((FILLET1_R, FILLET1_R), FILLET1_R, 180, 90)
            Line((0, FILLET1_R), (0, 0))
            Line((0, 0), (FILLET1_R, 0))
        make_face()
    fillet1_piece_14b = extrude(amount=10.875, mode=Mode.PRIVATE)
    fillet1_piece_14b = split(fillet1_piece_14b, bisect_by=Plane(origin=(4.65, -7.114586564, -5.622586564), z_dir=(-1, 0, 0)), keep=Keep.TOP, mode=Mode.PRIVATE)
    fillet1_piece_14b = split(fillet1_piece_14b, bisect_by=Plane(origin=(-0.35, -7.114586564, -5.622586564), z_dir=(1, 0, 0)), keep=Keep.TOP, mode=Mode.PRIVATE)
    fillet1_piece_14 = fillet1_piece_14a & fillet1_piece_14b
    add(fillet1_piece_14)

    # Sketch6 → Cut-Extrude4 (cut)
    with BuildSketch(Plane.XZ.offset(6.492)):
        with Locations((-10.1, 0)):
            Rectangle(SKETCH6_W, SKETCH6_H)
    extrude(amount=-CUT_EXTRUDE4_DEPTH, mode=Mode.SUBTRACT)


solid = part.part
